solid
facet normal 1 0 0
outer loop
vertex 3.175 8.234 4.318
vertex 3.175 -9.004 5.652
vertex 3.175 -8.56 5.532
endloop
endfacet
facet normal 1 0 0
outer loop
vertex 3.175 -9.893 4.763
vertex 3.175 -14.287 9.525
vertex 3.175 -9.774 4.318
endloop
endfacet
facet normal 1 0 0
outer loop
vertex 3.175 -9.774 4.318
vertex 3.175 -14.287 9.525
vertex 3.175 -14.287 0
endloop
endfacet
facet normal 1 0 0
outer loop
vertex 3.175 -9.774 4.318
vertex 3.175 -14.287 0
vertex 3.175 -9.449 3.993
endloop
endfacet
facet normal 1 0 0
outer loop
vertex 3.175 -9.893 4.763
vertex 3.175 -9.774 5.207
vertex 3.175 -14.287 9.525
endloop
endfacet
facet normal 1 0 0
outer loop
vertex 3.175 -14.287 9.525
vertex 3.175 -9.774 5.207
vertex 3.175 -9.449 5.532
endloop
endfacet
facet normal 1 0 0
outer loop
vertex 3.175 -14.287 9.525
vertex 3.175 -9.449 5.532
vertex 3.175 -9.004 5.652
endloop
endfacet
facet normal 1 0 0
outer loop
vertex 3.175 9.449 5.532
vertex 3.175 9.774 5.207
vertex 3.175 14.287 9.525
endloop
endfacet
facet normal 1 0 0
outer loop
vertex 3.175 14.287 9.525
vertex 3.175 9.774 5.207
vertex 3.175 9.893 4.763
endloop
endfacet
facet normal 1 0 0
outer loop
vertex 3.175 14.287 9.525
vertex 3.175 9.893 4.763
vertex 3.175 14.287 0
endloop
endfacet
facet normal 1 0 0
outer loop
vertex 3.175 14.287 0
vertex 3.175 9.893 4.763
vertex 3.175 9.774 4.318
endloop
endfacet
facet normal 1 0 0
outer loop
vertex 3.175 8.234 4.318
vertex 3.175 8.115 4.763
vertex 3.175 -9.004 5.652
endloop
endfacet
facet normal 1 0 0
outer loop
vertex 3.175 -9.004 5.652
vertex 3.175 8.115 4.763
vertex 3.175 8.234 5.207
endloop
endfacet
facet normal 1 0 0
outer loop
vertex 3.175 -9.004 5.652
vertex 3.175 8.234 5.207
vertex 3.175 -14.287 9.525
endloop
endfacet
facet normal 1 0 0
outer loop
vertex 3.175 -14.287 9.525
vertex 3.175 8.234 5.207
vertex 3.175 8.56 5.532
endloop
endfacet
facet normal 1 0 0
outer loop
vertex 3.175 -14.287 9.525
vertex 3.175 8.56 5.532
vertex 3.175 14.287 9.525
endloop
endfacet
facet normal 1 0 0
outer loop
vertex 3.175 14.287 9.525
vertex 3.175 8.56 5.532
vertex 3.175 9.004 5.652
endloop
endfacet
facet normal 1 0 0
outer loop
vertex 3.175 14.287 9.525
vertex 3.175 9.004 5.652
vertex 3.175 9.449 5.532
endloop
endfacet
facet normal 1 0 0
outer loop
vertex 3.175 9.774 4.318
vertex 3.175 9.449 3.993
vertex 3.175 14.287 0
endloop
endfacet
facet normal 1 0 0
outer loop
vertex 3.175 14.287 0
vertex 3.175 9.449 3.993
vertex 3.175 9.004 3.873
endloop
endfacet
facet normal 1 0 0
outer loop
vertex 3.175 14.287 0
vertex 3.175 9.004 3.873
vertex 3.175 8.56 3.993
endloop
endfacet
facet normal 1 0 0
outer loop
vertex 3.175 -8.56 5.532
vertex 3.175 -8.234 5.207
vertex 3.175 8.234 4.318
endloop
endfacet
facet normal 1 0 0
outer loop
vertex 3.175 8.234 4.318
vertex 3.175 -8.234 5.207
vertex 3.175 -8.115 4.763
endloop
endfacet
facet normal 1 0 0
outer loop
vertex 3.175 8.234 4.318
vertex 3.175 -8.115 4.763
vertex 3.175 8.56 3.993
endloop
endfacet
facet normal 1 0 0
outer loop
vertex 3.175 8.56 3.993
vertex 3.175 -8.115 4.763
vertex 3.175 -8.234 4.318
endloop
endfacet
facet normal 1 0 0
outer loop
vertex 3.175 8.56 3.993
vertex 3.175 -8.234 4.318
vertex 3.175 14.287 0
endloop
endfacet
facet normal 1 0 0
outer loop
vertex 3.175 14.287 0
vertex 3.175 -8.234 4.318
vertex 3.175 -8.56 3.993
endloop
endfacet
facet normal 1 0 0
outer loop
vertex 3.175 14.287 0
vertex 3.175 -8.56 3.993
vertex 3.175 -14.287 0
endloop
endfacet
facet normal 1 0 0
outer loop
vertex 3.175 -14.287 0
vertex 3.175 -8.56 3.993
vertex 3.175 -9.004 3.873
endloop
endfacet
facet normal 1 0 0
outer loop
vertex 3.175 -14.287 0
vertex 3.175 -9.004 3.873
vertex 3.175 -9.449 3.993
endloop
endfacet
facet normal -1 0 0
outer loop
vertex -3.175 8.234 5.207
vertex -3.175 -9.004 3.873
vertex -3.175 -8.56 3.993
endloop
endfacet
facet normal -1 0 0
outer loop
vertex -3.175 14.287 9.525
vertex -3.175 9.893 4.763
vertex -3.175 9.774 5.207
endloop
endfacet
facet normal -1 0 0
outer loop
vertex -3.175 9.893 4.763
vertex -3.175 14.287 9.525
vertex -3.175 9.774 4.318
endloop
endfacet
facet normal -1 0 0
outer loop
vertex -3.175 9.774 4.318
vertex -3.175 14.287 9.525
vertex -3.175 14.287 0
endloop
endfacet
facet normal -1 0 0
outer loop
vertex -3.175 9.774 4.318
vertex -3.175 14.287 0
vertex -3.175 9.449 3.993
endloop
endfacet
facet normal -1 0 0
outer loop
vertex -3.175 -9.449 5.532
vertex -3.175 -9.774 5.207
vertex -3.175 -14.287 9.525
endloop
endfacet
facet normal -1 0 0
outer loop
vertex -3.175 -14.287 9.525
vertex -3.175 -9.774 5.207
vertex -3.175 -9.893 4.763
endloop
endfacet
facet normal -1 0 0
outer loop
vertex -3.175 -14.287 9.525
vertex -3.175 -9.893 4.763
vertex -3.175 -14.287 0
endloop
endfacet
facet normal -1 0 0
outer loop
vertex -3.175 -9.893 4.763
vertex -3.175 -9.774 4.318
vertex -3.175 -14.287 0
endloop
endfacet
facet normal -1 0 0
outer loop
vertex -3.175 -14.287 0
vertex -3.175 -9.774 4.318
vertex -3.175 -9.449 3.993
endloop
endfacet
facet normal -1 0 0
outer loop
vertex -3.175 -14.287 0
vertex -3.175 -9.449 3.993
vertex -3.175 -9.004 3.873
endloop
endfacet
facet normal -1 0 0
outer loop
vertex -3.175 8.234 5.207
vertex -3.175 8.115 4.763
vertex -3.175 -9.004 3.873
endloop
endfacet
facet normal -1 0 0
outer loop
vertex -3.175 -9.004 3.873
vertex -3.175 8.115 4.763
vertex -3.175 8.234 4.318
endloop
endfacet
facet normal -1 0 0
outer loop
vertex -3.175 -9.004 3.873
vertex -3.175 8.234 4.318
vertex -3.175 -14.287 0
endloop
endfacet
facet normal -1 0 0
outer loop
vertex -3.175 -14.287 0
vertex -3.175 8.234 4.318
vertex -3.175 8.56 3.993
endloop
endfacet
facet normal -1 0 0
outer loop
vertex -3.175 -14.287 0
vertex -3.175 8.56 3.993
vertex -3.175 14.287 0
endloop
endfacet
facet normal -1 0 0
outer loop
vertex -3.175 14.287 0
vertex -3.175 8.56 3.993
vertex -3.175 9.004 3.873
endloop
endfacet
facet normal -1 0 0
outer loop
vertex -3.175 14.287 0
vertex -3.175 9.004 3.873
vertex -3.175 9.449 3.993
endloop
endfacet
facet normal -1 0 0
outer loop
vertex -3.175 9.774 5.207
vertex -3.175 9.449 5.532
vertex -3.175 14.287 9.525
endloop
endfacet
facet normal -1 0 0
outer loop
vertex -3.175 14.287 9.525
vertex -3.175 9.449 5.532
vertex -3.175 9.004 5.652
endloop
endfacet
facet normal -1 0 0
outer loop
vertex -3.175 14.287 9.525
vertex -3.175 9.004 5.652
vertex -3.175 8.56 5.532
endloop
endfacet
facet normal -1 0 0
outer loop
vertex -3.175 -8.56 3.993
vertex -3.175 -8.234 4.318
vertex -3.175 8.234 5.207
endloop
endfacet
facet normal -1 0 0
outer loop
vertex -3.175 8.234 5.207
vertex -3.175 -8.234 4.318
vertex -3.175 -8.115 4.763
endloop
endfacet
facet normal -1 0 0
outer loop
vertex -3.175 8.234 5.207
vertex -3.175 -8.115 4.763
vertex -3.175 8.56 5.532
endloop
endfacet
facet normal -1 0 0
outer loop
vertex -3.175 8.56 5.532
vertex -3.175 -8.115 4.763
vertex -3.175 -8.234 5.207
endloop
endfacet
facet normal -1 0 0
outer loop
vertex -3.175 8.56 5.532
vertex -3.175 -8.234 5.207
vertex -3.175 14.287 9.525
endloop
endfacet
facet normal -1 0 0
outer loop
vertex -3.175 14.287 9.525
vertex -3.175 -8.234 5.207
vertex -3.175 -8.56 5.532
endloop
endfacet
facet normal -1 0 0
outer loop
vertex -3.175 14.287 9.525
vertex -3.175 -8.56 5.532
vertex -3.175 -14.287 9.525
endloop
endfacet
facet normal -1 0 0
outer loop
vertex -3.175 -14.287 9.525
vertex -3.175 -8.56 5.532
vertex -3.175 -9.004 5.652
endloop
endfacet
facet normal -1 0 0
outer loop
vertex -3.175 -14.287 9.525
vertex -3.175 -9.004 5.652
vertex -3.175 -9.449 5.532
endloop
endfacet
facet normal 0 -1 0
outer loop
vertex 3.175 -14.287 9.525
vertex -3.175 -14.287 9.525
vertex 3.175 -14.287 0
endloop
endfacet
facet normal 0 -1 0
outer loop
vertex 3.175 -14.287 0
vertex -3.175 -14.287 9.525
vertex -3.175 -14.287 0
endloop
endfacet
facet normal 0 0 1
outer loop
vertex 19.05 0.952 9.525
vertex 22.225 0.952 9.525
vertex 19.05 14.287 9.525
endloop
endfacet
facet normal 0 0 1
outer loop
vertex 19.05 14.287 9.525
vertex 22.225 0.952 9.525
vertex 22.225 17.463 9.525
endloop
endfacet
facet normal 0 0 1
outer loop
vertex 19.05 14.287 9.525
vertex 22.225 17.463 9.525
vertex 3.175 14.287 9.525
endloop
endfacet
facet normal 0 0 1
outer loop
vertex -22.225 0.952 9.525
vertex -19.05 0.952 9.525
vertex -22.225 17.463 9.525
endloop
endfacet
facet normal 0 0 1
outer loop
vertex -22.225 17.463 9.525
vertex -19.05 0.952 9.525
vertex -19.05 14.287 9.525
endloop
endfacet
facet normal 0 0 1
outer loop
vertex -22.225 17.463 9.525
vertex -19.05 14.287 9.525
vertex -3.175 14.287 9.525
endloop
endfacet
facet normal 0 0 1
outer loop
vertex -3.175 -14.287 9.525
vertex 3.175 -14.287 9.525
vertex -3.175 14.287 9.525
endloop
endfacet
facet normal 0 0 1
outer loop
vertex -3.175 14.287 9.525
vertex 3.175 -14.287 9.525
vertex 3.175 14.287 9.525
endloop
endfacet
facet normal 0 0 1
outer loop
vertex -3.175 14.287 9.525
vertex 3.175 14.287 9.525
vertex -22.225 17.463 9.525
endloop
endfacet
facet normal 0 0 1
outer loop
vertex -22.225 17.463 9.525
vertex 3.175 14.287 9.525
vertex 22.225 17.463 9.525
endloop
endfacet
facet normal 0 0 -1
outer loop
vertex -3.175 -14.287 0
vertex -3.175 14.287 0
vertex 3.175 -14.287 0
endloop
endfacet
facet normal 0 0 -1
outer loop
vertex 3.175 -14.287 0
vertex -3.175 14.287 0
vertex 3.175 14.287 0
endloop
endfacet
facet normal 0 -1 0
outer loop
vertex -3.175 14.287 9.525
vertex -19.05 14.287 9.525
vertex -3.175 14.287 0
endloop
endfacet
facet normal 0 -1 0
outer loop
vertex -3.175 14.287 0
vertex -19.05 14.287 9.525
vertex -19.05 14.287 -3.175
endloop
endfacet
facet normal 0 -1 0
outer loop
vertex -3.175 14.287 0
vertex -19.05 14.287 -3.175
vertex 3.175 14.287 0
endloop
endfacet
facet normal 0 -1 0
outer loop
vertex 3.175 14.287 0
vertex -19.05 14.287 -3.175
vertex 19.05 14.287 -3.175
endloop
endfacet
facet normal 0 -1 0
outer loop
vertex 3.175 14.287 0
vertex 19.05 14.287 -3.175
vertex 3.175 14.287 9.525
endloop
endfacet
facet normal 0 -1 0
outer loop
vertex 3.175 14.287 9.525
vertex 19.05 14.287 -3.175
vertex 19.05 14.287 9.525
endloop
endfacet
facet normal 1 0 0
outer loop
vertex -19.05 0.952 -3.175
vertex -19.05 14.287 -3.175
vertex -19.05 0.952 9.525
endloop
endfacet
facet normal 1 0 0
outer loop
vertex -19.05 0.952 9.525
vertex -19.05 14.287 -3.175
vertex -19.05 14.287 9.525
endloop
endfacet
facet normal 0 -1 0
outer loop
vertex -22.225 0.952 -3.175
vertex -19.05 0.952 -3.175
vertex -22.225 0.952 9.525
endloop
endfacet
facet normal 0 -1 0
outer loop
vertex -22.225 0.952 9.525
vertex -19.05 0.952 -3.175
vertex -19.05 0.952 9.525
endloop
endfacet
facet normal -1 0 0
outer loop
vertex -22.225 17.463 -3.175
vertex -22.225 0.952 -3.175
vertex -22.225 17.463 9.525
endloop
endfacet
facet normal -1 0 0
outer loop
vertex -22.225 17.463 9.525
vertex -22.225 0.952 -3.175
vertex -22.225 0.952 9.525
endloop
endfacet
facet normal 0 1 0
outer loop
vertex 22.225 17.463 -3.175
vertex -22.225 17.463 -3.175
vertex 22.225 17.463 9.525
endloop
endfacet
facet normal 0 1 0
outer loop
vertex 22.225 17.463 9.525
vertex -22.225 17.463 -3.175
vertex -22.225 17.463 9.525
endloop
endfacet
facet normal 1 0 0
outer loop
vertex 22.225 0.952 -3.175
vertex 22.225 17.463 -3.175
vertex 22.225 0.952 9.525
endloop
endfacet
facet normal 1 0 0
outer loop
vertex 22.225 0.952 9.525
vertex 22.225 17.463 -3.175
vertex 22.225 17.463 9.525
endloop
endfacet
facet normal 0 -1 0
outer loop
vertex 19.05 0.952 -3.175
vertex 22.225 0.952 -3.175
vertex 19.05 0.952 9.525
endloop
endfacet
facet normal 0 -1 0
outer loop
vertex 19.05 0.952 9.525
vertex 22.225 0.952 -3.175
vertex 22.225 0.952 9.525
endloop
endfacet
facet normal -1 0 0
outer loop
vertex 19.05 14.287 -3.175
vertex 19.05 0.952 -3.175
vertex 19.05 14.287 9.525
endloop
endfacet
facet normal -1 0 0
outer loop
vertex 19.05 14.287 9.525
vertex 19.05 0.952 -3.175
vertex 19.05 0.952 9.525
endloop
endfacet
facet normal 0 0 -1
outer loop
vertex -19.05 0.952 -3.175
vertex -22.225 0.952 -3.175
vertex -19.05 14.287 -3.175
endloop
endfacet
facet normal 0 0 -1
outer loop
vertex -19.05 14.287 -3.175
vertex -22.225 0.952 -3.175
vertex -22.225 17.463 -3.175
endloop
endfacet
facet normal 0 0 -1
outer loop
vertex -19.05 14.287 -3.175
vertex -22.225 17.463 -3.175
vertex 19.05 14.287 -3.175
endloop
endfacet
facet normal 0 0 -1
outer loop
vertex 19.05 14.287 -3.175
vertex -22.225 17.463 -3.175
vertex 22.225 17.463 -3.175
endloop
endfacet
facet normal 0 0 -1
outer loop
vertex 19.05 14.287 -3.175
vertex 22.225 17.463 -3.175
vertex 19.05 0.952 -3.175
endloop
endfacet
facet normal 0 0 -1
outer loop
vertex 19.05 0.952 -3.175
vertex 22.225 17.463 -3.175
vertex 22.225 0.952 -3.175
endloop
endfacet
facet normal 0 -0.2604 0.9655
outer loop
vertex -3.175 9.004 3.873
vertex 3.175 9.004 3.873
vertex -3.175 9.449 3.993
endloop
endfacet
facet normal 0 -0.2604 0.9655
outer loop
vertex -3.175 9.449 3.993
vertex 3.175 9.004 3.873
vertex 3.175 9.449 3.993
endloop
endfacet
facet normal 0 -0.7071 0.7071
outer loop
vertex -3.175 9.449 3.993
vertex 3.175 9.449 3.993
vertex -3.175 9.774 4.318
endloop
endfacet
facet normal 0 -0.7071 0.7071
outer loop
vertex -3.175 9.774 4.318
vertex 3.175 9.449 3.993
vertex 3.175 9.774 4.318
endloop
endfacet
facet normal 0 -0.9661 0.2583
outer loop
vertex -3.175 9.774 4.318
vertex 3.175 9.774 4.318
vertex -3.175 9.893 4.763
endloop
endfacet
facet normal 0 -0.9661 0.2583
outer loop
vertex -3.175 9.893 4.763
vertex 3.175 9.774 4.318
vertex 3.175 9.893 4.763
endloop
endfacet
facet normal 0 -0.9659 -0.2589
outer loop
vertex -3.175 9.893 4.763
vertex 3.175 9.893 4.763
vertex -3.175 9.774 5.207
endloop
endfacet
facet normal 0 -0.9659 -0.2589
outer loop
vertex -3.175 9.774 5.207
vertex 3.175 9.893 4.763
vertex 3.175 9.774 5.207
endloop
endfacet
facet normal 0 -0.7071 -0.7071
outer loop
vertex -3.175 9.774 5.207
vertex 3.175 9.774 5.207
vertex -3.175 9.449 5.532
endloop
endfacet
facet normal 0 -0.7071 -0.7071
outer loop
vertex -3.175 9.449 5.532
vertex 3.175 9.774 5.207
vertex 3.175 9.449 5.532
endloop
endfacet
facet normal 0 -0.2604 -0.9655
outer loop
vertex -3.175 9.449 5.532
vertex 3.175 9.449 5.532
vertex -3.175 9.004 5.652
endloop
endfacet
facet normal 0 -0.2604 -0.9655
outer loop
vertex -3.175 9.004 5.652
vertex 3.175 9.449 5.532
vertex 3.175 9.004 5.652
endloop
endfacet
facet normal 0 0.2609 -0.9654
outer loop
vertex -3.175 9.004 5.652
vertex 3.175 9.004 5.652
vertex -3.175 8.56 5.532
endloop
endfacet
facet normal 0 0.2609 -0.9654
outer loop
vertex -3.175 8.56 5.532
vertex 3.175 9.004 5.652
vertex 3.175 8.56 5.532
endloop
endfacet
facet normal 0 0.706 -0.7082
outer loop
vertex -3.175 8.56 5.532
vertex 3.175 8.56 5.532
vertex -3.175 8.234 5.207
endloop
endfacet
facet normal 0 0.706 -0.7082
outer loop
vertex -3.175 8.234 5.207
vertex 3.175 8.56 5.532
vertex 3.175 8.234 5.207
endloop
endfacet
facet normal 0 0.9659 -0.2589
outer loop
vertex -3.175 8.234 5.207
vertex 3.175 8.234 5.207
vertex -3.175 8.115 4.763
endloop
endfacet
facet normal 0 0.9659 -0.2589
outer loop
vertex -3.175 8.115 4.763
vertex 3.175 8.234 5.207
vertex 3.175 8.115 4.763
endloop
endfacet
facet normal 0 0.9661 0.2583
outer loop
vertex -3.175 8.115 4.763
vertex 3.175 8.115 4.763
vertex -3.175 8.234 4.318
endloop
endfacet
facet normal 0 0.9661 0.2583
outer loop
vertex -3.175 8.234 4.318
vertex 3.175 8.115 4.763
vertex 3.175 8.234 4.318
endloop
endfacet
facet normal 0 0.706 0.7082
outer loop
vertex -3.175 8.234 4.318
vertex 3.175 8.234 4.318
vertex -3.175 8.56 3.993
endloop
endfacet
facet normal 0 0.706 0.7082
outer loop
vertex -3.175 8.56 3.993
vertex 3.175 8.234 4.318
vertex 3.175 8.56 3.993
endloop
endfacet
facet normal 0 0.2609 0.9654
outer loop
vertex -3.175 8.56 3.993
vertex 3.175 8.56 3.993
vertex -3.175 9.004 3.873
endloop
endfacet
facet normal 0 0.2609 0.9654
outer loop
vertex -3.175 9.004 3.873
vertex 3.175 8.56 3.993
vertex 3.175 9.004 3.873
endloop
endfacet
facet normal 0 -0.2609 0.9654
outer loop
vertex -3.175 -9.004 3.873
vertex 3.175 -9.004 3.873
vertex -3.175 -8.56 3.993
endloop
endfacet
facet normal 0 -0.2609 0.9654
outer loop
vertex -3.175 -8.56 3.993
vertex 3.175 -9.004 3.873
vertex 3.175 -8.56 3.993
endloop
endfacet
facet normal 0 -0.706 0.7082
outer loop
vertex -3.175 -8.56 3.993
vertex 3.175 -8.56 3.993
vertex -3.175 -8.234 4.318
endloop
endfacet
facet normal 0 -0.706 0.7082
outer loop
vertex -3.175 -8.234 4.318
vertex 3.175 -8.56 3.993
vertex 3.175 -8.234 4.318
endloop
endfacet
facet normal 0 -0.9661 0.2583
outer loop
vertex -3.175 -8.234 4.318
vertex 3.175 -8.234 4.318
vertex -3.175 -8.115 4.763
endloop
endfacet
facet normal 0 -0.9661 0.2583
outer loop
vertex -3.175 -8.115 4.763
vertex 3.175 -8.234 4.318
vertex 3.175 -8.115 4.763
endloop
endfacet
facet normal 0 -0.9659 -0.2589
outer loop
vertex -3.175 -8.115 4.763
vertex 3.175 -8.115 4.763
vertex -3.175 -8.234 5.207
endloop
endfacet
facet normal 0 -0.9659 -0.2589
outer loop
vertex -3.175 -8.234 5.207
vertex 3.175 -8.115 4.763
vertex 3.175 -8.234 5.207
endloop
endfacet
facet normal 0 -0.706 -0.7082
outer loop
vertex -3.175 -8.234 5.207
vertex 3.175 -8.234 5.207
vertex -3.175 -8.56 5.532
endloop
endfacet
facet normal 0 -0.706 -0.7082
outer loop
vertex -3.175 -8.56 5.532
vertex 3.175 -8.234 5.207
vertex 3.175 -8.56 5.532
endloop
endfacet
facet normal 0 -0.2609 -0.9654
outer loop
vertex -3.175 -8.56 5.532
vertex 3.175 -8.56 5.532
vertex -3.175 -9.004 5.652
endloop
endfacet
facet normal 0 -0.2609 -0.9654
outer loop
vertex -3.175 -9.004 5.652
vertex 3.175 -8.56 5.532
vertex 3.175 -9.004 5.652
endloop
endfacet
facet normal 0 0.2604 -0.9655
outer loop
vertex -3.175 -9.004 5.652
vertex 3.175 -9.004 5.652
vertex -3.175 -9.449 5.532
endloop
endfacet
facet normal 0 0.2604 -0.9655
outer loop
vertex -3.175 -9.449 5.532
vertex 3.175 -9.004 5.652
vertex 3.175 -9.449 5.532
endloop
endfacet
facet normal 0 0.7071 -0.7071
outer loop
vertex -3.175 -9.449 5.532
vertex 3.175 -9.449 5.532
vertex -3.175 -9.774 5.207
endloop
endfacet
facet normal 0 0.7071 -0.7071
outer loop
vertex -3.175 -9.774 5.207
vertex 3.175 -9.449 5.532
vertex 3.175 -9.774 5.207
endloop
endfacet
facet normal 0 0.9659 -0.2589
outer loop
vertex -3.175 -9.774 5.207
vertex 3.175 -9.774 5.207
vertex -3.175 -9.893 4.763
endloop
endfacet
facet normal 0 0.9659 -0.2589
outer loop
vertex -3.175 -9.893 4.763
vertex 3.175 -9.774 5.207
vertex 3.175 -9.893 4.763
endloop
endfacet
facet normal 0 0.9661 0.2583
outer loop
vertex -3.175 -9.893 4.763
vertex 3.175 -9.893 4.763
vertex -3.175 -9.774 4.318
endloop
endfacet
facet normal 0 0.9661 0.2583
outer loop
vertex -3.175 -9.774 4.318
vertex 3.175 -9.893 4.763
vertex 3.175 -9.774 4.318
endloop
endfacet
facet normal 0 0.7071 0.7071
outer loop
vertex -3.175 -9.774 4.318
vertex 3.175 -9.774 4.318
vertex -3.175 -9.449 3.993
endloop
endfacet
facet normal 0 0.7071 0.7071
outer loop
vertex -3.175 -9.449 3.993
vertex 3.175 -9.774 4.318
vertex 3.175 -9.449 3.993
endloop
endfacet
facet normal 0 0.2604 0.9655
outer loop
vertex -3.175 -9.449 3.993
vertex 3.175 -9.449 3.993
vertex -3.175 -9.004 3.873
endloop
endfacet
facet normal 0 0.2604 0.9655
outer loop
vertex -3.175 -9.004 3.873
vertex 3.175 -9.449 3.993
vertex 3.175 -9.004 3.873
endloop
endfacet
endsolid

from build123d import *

# Parameters (mm, degrees)
SKETCH1_W           = 6.35
SKETCH1_H           = 28.575
BOSS_EXTRUDE1_DEPTH = 9.525
SKETCH3_W           = 3.175
SKETCH3_H           = 13.335
BOSS_EXTRUDE2_DEPTH = 12.7
CUT_EXTRUDE1_REACH  = 34.262
SKETCH4_R           = 0.889


with BuildPart() as part:
    # Sketch1 → Boss-Extrude1 (new body)
    with BuildSketch(Plane.XY):
        Rectangle(SKETCH1_W, SKETCH1_H)
    extrude(amount=BOSS_EXTRUDE1_DEPTH)

    # Sketch3 → Boss-Extrude2 (add)
    with BuildSketch(Plane.XY.offset(9.525)):
        with Locations((-20.6375, 7.62)):
            Rectangle(SKETCH3_W, SKETCH3_H)
        Polygon((22.225, 17.4625), (-22.225, 17.4625), (-22.225, 14.2875), (-19.05, 14.2875), (-3.175, 14.2875), (3.175, 14.2875), (19.05, 14.2875), (22.225, 14.2875), align=None)
        with Locations((20.6375, 7.62)):
            Rectangle(SKETCH3_W, SKETCH3_H)
    extrude(amount=-BOSS_EXTRUDE2_DEPTH)

    # Sketch4 → Cut-Extrude1 (cut, up to next)
    with BuildSketch(Plane(origin=(3.175, 0, 0), x_dir=(0, 0, -1), z_dir=(1, 0, 0)), mode=Mode.PRIVATE) as cut_extrude1_sk1:
        with Locations((-4.7625, -9.0043)):
            Circle(SKETCH4_R)
    cut_extrude1_tool1 = extrude(cut_extrude1_sk1.sketch, amount=-CUT_EXTRUDE1_REACH, mode=Mode.PRIVATE) & part.part
    # Sketch4 → Cut-Extrude1 (cut, up to next)
    with BuildSketch(Plane(origin=(3.175, 0, 0), x_dir=(0, 0, -1), z_dir=(1, 0, 0)), mode=Mode.PRIVATE) as cut_extrude1_sk2:
        with Locations((-4.7625, 9.0043)):
            Circle(SKETCH4_R)
    cut_extrude1_tool2 = extrude(cut_extrude1_sk2.sketch, amount=-CUT_EXTRUDE1_REACH, mode=Mode.PRIVATE) & part.part
    add(cut_extrude1_tool1.solids().sort_by_distance((3.175, -9.0043, 4.7625))[0], mode=Mode.SUBTRACT)
    add(cut_extrude1_tool2.solids().sort_by_distance((3.175, 9.0043, 4.7625))[0], mode=Mode.SUBTRACT)


solid = part.part
